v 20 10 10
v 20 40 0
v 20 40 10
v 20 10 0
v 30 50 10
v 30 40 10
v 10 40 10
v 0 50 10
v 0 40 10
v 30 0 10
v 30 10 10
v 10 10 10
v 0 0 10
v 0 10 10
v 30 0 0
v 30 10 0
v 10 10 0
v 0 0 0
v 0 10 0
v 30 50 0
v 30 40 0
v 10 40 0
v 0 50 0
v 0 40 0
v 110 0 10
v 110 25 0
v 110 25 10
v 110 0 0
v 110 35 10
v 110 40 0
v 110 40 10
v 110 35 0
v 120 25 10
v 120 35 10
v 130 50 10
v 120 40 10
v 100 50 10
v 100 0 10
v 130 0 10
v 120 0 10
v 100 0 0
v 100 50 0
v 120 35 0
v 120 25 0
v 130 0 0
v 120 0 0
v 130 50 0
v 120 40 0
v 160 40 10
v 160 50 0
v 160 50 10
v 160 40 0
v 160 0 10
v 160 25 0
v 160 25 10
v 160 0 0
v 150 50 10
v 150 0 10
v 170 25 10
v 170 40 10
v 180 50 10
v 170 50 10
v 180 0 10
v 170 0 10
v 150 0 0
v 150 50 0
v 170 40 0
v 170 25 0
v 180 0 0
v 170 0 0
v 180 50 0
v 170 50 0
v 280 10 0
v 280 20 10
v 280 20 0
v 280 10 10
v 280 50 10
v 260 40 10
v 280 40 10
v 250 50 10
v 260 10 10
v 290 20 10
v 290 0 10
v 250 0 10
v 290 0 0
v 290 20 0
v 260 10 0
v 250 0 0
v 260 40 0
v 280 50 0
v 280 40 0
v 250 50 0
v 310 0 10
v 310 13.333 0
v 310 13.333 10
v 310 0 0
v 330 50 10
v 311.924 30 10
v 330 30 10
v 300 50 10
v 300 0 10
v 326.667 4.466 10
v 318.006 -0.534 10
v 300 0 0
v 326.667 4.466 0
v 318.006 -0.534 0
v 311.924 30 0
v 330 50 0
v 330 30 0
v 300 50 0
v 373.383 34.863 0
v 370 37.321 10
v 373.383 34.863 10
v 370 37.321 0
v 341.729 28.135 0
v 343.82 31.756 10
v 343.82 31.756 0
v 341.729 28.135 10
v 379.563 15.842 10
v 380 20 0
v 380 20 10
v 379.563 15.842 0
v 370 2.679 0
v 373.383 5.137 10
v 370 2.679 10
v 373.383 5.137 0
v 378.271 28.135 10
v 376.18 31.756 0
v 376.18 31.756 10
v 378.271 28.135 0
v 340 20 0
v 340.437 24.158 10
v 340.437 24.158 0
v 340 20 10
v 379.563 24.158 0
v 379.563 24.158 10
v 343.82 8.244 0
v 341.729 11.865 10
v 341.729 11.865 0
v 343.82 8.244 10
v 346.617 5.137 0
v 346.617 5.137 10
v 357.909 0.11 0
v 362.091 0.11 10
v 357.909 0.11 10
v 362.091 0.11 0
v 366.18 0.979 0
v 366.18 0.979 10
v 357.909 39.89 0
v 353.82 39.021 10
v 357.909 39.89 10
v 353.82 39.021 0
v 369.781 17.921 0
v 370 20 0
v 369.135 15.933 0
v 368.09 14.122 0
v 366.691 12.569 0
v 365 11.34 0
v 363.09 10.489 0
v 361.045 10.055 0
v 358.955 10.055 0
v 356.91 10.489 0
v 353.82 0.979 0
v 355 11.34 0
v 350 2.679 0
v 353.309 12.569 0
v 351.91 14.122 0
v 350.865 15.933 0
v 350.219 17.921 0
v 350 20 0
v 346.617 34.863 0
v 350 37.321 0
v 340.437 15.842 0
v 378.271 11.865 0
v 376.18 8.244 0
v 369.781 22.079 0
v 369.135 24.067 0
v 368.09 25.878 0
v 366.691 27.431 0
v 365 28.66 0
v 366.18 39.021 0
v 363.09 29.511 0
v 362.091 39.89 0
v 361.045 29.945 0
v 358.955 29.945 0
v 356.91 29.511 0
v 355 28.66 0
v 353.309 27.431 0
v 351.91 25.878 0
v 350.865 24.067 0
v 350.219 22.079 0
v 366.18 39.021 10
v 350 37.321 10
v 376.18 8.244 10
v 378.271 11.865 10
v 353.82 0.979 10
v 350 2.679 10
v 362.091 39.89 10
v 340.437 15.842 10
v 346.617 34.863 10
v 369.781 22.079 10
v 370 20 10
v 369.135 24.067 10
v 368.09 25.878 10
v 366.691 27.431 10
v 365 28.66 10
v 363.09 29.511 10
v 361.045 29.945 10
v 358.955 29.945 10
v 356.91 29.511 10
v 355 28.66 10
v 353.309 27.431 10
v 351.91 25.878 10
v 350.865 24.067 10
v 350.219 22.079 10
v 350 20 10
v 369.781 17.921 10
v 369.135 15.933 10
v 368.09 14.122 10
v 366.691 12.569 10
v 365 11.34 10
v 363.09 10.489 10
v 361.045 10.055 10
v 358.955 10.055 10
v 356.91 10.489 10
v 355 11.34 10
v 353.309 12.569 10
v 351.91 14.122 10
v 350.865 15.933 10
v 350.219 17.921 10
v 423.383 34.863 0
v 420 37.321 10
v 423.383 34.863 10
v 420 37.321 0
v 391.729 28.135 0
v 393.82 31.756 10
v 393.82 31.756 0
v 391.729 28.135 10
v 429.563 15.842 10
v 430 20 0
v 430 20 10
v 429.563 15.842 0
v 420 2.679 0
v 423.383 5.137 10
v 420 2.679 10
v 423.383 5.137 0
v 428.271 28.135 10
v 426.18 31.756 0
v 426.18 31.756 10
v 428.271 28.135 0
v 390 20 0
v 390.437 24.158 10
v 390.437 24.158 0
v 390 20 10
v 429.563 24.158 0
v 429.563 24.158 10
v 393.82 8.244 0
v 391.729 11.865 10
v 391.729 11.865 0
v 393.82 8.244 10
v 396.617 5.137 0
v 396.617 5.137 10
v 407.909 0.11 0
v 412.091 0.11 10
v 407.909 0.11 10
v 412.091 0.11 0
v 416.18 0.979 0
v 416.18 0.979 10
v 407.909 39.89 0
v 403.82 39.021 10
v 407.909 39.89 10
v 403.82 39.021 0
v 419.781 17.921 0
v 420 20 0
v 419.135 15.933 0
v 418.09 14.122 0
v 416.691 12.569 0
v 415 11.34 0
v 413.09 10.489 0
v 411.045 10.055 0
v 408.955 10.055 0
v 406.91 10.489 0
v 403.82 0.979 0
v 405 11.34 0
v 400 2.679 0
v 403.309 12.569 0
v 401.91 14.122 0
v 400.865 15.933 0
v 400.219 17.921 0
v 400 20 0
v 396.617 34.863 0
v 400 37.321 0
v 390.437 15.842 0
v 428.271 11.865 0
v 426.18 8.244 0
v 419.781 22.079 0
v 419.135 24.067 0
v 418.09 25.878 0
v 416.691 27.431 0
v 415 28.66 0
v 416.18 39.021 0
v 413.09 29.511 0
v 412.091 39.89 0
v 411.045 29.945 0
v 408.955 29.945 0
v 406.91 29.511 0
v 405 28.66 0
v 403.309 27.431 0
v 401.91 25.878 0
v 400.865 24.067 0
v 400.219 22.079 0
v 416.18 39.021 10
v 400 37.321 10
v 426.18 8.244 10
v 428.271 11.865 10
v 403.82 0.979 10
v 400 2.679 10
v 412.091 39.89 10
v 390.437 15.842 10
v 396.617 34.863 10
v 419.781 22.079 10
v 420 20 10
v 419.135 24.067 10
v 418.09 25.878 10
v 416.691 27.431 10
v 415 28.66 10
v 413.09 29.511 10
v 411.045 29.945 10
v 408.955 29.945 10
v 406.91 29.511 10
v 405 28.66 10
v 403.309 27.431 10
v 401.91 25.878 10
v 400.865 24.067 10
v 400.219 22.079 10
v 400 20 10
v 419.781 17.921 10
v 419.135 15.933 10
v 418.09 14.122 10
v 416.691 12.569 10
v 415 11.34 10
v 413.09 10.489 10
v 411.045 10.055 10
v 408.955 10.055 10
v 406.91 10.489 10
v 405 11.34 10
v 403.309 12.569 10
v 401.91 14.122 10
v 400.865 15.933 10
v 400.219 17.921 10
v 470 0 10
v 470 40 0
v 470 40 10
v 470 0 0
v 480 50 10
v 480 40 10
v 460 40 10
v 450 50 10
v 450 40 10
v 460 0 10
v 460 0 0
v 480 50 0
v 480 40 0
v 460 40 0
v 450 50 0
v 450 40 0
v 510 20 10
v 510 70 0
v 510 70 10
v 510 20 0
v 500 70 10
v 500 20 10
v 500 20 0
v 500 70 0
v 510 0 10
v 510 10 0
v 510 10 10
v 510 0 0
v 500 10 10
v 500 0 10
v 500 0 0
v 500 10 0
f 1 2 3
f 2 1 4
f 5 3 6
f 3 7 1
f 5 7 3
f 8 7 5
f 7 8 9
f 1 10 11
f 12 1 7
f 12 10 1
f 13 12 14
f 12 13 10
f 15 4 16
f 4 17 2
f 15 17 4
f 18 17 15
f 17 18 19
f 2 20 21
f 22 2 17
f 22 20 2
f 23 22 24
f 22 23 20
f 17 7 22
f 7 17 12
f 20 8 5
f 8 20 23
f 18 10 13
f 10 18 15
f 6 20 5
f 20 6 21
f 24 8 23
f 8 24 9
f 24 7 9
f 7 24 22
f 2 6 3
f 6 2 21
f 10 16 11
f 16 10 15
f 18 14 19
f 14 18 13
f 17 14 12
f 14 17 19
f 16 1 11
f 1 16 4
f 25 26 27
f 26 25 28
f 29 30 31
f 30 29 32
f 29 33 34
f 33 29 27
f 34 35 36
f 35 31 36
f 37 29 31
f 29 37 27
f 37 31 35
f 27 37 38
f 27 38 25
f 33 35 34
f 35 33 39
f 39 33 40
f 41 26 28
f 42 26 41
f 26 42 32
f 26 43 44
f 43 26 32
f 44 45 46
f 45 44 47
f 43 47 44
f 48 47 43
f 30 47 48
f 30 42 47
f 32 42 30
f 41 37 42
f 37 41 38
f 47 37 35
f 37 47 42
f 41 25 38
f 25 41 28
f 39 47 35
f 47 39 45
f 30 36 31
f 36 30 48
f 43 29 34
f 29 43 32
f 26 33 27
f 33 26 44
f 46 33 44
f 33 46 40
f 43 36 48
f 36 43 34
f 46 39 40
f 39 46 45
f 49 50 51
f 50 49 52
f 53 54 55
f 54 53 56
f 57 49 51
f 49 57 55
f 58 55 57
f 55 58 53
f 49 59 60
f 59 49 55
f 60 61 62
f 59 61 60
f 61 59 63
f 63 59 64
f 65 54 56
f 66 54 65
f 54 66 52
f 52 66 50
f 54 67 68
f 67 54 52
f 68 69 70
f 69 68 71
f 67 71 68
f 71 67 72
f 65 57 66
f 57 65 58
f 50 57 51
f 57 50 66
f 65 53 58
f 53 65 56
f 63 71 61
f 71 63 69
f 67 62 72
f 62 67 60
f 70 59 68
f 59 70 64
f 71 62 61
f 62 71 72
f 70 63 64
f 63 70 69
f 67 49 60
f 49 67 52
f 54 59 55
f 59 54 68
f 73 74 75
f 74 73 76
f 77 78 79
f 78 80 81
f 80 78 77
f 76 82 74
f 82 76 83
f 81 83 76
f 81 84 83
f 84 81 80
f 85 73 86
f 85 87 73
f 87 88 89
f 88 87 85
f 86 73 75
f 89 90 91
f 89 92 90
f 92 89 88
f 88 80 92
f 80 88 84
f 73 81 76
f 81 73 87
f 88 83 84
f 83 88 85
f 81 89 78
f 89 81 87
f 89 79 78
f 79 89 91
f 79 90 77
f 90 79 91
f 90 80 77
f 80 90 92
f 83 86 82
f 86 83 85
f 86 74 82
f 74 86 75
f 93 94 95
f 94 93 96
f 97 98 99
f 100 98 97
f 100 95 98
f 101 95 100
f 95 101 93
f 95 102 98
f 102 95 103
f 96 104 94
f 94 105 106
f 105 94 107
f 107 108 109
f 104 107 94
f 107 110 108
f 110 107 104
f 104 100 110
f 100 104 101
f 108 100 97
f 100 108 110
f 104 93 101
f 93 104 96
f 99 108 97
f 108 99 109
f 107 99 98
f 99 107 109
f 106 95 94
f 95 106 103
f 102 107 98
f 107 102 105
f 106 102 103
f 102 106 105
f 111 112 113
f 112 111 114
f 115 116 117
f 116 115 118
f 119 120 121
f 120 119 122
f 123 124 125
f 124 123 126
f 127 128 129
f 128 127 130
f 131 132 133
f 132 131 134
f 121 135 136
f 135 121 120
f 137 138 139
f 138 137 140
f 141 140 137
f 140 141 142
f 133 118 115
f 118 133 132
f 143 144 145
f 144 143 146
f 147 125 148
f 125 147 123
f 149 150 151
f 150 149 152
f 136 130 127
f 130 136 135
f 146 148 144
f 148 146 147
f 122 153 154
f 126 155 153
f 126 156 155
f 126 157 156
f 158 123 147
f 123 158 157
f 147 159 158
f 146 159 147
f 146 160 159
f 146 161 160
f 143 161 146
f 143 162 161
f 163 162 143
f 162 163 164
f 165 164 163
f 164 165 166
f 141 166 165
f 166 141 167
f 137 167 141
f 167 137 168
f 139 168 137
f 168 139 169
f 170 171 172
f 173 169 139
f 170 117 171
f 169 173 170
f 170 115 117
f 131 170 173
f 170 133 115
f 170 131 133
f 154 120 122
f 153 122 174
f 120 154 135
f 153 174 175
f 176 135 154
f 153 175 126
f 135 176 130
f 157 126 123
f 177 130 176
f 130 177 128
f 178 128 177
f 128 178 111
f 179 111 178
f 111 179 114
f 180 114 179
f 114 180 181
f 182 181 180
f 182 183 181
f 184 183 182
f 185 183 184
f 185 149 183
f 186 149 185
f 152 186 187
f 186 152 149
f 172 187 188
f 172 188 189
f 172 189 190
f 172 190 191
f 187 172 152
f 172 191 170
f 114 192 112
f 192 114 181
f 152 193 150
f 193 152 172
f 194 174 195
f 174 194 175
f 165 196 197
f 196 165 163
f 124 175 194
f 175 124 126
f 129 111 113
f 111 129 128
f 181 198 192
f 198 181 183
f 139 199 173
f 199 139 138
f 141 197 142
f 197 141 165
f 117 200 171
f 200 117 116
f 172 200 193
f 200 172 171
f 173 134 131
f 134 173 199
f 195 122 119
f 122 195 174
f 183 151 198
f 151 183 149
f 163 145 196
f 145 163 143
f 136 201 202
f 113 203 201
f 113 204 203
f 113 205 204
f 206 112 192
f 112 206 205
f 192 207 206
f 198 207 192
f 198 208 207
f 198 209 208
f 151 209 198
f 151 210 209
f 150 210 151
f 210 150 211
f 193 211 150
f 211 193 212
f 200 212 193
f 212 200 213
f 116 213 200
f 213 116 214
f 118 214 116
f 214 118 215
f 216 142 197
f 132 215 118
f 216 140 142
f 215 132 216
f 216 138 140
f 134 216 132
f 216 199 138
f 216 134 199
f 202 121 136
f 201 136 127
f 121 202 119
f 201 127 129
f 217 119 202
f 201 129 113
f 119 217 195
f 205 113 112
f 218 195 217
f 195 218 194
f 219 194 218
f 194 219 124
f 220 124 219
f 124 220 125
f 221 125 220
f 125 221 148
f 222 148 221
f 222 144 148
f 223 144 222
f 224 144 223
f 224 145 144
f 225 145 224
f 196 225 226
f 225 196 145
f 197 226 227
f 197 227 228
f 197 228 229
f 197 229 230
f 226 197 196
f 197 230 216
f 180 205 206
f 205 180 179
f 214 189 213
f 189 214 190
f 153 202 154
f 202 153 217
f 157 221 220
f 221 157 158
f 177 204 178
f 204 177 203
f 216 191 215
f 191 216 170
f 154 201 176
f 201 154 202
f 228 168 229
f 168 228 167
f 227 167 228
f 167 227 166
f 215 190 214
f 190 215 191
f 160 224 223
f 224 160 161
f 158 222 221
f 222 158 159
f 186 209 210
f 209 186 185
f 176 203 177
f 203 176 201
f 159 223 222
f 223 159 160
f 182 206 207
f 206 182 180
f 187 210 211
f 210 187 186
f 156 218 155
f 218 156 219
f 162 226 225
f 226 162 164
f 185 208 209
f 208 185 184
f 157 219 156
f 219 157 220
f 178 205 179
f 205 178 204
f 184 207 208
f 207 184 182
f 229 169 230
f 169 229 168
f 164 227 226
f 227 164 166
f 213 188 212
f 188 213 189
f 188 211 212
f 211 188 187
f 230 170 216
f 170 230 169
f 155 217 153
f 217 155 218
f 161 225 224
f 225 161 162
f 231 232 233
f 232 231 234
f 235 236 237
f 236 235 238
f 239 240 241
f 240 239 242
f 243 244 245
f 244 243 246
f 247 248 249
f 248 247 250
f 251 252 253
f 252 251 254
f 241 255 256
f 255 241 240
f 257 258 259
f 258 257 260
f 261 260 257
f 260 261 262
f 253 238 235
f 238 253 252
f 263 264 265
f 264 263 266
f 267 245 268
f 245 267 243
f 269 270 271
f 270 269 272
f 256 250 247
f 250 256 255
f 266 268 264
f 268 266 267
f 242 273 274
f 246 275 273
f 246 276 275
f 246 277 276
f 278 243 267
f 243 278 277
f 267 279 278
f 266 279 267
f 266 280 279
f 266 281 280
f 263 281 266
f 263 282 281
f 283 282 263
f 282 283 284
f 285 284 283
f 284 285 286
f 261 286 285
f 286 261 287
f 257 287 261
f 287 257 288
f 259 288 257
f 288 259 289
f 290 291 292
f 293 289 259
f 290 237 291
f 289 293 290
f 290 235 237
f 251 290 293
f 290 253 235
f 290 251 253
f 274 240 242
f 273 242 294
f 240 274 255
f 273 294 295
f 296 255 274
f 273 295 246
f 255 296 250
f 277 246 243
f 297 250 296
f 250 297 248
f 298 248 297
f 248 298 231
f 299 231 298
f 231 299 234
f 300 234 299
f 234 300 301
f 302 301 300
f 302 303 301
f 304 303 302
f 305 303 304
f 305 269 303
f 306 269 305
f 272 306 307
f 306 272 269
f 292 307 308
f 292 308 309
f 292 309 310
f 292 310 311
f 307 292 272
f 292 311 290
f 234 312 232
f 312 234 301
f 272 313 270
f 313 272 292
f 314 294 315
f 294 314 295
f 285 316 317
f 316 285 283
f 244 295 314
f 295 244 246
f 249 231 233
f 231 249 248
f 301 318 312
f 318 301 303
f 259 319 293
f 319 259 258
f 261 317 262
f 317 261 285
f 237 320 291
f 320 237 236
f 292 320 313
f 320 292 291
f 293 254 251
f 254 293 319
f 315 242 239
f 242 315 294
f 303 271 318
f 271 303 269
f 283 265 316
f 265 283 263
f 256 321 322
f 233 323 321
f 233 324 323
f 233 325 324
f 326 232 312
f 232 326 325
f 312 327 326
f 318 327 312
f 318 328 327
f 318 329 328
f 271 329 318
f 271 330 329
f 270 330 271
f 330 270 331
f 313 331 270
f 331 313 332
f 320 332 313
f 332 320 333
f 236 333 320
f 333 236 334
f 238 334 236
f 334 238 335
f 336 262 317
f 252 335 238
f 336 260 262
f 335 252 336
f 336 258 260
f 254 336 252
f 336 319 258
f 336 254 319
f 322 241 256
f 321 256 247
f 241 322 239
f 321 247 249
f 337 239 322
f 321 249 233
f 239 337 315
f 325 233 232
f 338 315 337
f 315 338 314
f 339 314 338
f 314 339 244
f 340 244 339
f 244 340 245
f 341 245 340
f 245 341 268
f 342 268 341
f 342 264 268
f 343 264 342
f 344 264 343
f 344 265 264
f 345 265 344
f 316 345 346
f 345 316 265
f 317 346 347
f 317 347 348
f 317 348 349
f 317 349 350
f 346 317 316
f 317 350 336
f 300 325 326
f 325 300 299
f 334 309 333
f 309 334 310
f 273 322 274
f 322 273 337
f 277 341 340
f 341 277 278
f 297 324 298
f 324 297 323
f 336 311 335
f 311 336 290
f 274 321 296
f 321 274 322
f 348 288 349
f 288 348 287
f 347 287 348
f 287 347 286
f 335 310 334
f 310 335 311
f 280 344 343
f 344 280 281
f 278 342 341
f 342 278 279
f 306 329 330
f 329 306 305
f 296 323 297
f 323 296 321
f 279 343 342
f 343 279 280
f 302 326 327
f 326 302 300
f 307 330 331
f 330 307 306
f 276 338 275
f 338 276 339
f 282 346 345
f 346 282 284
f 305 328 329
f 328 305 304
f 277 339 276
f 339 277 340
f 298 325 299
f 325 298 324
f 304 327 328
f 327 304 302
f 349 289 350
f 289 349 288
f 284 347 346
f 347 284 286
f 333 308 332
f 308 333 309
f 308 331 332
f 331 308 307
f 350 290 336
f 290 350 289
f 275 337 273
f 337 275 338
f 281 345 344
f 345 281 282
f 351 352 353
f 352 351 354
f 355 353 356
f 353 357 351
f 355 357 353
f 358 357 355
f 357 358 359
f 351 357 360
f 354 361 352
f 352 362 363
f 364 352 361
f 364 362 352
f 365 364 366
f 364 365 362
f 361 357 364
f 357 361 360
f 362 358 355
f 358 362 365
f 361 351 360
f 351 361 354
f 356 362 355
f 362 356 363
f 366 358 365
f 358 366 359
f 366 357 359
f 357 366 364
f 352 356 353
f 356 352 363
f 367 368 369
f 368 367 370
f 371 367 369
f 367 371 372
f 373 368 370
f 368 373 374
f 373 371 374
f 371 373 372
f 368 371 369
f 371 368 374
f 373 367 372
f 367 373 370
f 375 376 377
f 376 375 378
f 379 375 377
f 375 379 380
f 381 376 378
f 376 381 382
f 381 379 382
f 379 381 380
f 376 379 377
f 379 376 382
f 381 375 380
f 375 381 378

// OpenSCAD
union(){
    translate(v=[0, 0, 0]){
        color("red"){
            union(){
                translate(v=[10, 0, 0]){
                    cube(size=[10, 50, 10]);
                };
                translate(v=[0, 40, 0]){
                    cube(size=[30, 10, 10]);
                };
                translate(v=[0, 0, 0]){
                    cube(size=[30, 10, 10]);
                };
            };
        };
    };
    translate(v=[100, 0, 0]){
        color("orange"){
            union(){
                cube(size=[10, 50, 10]);
                translate(v=[0, 40, 0]){
                    cube(size=[30, 10, 10]);
                };
                translate(v=[0, 25, 0]){
                    cube(size=[30, 10, 10]);
                };
                translate(v=[20, 0, 0]){
                    cube(size=[10, 50, 10]);
                };
            };
        };
    };
    translate(v=[150, 0, 0]){
        color("yellow"){
            union(){
                cube(size=[10, 50, 10]);
                translate(v=[20, 0, 0]){
                    cube(size=[10, 50, 10]);
                };
                translate(v=[10, 25, 0]){
                    cube(size=[10, 15.0, 10]);
                };
            };
        };
    };
    translate(v=[250, 0, 0]){
        color("green"){
            union(){
                cube(size=[30, 10, 10]);
                translate(v=[0, 10, 0]){
                    cube(size=[10, 30, 10]);
                };
                translate(v=[0, 40, 0]){
                    cube(size=[30, 10, 10]);
                };
                translate(v=[30, 0, 0]){
                    cube(size=[10, 20, 10]);
                };
            };
        };
    };
    translate(v=[300, 0, 0]){
        color("blue"){
            union(){
                cube(size=[10, 50, 10]);
                translate(v=[10, 30, 0]){
                    cube(size=[20, 20, 10]);
                };
                translate(v=[10, 33.333333333333336, 0]){
                    rotate(a=[0, 0, -150]){
                        cube(size=[10, 33.333333333333336, 10]);
                    };
                };
            };
        };
    };
    translate(v=[350, 0, 0]){
        color("purple"){
            translate(v=[10, 20.0, 0]){
                difference(){
                    cylinder(h=10, r=20);
                    translate(v=[0, 0, -0.5]){
                        cylinder(h=11, r=10);
                    };
                };
            };
        };
    };
    translate(v=[400, 0, 0]){
        color("red"){
            translate(v=[10, 20.0, 0]){
                difference(){
                    cylinder(h=10, r=20);
                    translate(v=[0, 0, -0.5]){
                        cylinder(h=11, r=10);
                    };
                };
            };
        };
    };
    translate(v=[450, 0, 0]){
        color("orange"){
            union(){
                translate(v=[10, 0, 0]){
                    cube(size=[10, 50, 10]);
                };
                translate(v=[0, 40, 0]){
                    cube(size=[30, 10, 10]);
                };
            };
        };
    };
    translate(v=[500, 0, 0]){
        color("yellow"){
            translate(v=[0, 20, 0]){
                union(){
                    cube(size=[10, 50, 10]);
                    translate(v=[0, -20, 0]){
                        cube(size=[10, 10, 10]);
                    };
                };
            };
        };
    };
};
